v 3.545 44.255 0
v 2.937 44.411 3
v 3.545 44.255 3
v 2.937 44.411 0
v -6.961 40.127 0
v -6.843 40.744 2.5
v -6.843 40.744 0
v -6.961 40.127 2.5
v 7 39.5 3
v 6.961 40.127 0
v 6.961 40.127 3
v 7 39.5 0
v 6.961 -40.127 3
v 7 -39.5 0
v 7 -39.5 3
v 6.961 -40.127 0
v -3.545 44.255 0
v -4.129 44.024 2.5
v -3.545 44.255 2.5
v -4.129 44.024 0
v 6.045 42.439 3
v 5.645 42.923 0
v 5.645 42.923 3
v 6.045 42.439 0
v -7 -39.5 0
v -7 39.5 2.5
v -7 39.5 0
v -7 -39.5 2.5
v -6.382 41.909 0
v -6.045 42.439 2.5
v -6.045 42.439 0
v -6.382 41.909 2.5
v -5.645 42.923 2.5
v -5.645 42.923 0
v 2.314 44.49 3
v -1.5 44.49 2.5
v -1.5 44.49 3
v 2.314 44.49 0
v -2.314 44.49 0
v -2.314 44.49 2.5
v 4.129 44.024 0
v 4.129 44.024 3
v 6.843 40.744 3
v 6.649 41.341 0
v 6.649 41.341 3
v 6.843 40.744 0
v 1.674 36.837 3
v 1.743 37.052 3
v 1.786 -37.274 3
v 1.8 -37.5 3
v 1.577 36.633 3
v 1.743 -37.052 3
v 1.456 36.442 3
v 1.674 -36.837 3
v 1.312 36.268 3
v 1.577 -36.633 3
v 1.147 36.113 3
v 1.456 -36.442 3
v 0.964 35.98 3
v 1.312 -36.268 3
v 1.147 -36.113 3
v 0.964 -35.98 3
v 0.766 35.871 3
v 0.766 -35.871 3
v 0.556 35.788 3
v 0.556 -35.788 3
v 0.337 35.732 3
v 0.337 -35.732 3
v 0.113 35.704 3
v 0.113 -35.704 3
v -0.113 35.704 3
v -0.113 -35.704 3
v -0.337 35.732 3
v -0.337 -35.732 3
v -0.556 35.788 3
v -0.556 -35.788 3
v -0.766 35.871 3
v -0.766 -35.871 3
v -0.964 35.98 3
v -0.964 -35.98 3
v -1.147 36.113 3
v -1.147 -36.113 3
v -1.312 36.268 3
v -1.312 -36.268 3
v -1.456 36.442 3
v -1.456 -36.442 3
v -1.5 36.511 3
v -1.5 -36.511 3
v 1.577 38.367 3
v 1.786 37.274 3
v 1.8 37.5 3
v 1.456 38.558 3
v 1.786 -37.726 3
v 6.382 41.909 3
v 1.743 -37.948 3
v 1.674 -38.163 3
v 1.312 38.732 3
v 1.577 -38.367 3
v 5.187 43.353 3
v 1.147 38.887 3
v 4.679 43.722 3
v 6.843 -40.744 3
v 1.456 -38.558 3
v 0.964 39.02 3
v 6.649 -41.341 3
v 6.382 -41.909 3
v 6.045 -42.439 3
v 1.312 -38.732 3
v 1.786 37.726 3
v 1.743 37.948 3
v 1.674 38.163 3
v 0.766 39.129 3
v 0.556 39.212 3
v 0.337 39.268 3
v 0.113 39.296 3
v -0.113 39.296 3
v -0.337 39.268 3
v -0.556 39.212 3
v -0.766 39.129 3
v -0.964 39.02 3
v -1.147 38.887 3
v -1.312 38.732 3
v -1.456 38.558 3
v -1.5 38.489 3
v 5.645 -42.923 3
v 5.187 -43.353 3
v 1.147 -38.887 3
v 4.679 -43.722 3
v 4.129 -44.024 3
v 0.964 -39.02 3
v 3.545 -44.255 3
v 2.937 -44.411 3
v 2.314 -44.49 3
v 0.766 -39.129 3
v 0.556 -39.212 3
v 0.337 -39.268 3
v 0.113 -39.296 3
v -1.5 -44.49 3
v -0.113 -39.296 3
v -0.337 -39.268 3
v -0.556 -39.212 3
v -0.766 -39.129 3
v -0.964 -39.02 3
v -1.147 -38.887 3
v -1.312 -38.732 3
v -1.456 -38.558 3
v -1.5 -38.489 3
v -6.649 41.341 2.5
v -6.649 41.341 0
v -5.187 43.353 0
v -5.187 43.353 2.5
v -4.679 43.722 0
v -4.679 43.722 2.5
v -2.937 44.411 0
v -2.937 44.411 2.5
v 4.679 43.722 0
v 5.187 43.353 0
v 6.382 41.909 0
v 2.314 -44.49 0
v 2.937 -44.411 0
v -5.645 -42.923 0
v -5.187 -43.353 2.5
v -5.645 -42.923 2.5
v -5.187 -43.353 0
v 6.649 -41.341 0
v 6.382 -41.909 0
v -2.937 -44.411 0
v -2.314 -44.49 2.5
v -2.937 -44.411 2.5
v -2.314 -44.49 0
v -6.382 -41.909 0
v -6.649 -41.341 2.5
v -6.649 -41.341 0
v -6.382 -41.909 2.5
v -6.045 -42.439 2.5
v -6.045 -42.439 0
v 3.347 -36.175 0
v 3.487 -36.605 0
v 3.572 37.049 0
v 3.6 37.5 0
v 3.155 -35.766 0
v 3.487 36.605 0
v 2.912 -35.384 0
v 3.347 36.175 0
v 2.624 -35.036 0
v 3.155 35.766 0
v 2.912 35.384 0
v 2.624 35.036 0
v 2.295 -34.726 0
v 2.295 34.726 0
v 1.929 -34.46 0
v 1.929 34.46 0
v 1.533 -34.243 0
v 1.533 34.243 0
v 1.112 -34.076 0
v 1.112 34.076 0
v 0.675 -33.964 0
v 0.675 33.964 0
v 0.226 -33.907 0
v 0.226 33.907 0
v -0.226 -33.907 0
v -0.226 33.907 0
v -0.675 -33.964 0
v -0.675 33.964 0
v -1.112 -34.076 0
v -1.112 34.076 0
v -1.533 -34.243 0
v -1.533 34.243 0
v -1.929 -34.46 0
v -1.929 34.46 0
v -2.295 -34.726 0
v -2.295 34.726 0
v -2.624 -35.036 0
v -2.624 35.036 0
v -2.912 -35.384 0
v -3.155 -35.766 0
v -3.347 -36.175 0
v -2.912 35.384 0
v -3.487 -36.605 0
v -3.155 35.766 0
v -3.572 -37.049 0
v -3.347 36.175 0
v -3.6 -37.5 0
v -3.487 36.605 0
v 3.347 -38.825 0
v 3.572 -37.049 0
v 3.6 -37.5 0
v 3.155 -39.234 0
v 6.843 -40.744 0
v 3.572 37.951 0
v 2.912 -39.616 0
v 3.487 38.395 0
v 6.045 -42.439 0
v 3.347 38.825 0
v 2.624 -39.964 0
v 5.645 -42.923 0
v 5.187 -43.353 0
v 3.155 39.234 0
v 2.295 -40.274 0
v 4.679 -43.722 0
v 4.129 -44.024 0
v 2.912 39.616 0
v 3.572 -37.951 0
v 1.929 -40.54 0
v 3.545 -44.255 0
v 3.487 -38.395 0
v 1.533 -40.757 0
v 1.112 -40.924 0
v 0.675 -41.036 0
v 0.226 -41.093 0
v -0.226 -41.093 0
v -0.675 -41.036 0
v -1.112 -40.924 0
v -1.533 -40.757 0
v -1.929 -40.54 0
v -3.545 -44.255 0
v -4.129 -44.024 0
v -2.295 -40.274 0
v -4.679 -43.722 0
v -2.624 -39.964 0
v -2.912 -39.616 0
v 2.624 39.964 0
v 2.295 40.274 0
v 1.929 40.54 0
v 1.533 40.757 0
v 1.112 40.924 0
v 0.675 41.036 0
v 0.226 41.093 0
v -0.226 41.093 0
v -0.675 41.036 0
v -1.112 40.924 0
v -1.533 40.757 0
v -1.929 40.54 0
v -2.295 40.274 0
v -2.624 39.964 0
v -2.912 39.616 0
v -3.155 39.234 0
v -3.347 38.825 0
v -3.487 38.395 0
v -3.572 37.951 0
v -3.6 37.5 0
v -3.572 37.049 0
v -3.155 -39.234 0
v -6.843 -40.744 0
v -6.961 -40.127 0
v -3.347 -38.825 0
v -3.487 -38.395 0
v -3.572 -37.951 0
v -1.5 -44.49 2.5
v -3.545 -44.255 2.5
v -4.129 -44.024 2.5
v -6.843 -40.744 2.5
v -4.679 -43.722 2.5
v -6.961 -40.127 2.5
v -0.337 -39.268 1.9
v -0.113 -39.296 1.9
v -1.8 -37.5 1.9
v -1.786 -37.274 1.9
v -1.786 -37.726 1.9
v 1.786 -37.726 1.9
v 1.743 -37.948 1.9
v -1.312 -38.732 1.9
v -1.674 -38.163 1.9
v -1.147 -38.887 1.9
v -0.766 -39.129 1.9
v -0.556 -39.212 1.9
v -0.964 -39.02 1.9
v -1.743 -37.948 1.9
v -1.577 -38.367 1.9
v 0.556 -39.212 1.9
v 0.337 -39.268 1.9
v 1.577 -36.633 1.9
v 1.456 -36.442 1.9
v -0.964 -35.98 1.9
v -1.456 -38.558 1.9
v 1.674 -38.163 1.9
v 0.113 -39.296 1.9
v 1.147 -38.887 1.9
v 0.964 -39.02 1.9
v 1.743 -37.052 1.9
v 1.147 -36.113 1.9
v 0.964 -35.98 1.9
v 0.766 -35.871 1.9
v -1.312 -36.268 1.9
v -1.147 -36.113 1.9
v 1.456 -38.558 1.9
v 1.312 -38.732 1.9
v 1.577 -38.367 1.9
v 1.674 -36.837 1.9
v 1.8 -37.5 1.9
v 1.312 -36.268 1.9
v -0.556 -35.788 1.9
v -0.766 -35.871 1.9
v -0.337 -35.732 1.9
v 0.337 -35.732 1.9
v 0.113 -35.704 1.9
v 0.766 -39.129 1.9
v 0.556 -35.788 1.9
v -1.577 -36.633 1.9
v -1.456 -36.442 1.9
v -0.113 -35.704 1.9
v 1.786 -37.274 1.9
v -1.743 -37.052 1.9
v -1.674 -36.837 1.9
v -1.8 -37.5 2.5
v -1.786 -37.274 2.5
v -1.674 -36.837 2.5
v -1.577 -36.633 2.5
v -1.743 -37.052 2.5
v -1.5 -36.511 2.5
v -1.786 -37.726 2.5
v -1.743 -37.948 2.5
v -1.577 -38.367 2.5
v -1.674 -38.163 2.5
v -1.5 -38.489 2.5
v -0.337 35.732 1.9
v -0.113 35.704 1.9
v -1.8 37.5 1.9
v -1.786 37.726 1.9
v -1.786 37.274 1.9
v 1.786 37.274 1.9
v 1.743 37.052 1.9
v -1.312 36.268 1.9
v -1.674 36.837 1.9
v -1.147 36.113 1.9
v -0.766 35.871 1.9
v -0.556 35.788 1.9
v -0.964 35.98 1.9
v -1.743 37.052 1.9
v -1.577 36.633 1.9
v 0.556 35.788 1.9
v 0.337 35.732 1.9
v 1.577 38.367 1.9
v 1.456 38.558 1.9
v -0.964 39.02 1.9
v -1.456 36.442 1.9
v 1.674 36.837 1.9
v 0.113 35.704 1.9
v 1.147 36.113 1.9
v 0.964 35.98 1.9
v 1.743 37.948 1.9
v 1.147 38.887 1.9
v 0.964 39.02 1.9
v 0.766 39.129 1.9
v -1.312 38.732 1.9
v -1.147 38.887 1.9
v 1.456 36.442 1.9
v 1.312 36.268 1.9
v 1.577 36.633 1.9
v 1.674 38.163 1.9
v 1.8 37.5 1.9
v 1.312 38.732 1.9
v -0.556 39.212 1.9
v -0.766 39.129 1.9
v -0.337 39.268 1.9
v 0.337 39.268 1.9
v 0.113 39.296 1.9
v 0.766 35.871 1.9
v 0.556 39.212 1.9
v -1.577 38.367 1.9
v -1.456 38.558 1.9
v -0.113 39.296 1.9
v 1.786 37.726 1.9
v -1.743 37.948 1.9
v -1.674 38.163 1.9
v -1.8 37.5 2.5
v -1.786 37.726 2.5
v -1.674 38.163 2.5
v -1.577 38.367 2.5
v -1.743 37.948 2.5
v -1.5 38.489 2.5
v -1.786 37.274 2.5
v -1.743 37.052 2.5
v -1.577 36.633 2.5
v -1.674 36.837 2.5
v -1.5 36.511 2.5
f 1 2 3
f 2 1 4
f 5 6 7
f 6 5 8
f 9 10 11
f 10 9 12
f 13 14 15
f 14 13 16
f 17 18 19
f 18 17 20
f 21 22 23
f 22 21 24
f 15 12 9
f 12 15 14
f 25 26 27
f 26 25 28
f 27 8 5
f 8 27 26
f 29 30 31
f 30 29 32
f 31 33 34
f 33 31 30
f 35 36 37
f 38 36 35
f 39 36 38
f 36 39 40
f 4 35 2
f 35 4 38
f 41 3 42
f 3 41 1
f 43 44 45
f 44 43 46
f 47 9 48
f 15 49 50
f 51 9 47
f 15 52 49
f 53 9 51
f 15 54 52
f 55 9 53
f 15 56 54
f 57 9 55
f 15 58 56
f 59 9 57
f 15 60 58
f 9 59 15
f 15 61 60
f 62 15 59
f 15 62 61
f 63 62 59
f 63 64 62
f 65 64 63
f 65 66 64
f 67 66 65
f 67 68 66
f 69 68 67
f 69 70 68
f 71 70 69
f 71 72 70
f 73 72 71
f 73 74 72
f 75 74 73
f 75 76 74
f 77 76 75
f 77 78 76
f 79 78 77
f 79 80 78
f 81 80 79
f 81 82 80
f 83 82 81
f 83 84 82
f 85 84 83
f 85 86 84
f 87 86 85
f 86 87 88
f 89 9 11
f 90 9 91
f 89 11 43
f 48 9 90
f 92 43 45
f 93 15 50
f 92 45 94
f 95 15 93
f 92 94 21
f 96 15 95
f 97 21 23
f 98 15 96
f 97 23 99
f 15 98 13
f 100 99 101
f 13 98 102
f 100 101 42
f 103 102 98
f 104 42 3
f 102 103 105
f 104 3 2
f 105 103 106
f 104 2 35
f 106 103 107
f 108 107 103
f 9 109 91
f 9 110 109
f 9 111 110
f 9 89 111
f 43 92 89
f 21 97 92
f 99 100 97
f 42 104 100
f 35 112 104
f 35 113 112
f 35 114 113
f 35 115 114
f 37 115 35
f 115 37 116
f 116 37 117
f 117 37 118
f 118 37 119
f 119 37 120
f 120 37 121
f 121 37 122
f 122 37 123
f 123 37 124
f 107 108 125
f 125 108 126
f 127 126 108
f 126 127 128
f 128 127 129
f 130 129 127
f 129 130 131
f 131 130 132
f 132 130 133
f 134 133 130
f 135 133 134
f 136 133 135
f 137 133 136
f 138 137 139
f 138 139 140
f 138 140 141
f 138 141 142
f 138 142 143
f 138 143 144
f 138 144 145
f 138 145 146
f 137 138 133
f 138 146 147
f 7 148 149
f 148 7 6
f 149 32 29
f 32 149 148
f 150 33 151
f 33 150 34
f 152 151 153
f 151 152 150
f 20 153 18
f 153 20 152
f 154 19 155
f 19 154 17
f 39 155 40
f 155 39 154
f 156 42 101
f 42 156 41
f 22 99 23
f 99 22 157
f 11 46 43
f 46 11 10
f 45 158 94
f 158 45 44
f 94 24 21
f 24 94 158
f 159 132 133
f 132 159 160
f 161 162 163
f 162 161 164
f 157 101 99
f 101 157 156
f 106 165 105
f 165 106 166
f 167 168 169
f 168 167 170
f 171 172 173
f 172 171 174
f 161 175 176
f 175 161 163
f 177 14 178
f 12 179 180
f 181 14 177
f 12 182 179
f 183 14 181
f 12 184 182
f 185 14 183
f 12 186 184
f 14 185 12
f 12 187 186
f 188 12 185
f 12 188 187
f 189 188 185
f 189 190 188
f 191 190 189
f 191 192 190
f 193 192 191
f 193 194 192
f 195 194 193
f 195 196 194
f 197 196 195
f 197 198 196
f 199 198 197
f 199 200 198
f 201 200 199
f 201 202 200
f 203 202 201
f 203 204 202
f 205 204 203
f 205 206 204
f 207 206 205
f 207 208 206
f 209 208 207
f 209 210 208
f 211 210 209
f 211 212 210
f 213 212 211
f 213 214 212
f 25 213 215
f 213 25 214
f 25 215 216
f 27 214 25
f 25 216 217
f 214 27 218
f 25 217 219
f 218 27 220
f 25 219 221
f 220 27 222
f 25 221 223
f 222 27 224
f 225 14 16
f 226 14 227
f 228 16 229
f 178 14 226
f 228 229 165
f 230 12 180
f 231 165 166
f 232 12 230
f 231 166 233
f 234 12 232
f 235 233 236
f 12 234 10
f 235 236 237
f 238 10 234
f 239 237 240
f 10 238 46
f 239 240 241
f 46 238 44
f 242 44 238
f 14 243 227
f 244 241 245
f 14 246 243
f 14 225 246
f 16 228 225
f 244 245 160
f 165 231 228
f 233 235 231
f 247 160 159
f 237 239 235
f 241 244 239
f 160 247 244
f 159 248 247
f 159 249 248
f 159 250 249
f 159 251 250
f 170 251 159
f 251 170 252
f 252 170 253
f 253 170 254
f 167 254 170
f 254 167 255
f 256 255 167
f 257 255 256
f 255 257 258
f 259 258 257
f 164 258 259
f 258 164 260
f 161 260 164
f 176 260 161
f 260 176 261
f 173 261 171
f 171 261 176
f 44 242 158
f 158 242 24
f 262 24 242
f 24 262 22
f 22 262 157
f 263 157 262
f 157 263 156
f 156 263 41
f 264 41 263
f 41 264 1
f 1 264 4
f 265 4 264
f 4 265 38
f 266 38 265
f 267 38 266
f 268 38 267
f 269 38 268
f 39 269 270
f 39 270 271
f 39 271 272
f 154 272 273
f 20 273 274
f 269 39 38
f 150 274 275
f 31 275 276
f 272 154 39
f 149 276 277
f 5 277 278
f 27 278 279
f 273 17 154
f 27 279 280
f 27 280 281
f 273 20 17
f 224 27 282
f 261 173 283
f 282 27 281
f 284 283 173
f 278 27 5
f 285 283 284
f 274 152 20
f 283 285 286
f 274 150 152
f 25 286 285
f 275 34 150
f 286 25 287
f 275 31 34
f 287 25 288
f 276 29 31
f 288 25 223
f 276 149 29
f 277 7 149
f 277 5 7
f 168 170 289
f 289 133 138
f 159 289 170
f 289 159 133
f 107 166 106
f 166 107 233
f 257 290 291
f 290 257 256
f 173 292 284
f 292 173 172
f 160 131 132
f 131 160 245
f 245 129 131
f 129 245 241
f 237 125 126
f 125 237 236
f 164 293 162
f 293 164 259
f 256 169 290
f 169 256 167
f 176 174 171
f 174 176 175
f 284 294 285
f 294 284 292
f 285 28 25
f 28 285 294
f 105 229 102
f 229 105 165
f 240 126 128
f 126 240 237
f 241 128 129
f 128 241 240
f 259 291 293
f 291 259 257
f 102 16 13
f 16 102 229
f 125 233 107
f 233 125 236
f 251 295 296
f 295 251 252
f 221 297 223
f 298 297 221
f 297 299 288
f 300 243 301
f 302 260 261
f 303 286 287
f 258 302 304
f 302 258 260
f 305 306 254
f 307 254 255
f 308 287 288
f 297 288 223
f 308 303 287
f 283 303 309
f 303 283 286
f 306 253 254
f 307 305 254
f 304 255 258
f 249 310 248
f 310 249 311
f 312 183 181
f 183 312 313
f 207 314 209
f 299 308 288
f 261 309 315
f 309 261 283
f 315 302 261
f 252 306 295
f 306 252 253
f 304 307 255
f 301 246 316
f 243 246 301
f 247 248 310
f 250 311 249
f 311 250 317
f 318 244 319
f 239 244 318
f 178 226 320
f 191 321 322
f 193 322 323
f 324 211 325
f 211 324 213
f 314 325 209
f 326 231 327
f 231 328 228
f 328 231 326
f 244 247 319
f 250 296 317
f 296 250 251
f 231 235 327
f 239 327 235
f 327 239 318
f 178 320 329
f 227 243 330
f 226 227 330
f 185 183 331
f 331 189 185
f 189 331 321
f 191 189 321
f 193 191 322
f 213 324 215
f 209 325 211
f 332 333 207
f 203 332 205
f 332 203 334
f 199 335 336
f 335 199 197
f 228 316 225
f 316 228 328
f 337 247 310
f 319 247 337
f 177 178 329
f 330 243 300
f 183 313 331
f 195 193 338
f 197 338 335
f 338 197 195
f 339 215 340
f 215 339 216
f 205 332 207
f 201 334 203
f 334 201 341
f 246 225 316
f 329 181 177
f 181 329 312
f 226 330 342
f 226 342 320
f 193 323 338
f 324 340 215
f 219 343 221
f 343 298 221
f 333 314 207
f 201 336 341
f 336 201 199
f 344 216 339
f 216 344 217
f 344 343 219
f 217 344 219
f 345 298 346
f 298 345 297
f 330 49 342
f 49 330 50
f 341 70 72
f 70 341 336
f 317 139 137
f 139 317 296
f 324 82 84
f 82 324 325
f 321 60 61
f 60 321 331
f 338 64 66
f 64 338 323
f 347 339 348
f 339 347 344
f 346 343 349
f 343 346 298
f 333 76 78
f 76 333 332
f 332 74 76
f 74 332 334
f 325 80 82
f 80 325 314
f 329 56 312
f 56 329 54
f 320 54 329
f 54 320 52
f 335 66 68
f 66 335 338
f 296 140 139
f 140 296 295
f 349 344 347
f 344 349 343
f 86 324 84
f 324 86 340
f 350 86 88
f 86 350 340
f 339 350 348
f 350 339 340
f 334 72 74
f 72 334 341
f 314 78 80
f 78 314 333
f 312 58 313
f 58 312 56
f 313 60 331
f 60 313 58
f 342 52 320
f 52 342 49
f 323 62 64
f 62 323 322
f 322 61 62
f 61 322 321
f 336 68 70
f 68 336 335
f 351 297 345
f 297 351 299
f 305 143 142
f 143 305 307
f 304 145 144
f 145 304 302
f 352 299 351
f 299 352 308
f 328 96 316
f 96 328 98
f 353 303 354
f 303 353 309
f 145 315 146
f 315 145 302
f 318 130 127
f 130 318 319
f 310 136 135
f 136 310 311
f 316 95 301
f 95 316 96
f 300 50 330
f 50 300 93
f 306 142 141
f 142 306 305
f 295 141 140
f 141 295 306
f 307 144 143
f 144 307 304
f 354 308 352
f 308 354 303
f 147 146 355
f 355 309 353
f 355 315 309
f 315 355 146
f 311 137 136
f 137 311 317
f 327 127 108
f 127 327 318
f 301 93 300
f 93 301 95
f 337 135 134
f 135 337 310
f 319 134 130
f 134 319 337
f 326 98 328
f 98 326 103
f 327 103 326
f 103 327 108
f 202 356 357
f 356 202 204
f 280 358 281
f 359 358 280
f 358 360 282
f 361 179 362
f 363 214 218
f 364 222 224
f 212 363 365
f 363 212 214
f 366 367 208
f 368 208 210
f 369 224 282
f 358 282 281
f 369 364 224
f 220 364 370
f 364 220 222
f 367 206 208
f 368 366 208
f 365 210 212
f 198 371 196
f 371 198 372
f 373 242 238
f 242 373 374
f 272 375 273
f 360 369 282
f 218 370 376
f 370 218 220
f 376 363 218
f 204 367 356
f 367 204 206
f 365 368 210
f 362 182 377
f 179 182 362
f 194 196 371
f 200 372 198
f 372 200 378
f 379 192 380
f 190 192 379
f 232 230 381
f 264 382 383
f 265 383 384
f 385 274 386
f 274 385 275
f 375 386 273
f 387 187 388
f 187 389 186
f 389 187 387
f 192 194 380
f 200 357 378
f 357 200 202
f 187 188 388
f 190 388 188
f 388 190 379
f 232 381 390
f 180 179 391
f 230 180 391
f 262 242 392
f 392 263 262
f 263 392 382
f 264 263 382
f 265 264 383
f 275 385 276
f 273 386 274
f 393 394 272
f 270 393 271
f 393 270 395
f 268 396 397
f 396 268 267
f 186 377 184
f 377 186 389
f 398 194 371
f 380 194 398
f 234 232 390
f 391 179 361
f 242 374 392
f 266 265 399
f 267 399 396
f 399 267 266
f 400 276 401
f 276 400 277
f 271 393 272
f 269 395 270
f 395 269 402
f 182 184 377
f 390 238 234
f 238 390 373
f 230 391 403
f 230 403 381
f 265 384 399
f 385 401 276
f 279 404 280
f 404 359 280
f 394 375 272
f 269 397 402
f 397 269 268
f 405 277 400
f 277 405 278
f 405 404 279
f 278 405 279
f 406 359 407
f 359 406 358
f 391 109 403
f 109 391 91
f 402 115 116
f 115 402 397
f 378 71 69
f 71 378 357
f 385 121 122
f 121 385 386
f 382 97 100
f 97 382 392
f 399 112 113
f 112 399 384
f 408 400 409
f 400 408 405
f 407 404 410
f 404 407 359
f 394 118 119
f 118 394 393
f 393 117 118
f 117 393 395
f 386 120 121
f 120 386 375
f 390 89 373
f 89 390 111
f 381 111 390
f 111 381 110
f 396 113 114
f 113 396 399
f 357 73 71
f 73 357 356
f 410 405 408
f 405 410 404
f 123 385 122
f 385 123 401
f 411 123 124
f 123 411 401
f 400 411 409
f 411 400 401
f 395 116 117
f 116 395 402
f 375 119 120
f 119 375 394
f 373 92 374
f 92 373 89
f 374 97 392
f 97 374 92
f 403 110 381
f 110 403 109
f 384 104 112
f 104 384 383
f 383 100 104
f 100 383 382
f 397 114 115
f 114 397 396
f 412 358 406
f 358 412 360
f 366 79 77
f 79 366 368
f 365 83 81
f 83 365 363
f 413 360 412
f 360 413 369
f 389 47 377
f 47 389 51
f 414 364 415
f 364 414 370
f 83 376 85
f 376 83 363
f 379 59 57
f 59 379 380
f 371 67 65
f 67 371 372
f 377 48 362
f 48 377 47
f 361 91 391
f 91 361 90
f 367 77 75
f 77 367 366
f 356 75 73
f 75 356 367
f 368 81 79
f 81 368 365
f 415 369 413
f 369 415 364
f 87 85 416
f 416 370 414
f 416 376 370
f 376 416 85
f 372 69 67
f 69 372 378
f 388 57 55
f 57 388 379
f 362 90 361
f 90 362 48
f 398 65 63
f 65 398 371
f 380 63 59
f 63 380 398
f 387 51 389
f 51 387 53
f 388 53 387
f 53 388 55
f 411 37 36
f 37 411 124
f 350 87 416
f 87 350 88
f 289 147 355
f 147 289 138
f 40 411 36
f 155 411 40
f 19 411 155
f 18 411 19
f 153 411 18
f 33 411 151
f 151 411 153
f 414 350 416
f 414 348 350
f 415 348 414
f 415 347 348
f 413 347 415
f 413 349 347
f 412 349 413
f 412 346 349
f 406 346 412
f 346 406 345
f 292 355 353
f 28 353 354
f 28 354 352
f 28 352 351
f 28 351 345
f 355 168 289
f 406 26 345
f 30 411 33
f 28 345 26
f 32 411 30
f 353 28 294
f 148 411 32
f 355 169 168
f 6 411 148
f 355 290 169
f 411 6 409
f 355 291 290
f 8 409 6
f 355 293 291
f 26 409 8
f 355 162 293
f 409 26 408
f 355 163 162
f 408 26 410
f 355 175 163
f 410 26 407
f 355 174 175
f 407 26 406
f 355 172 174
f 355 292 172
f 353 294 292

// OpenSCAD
$fn = 50;


difference() {
	union() {
		hull() {
			translate(v = [-2.0000000000, 39.5000000000, 0]) {
				cylinder(h = 3, r = 5);
			}
			translate(v = [2.0000000000, 39.5000000000, 0]) {
				cylinder(h = 3, r = 5);
			}
			translate(v = [-2.0000000000, -39.5000000000, 0]) {
				cylinder(h = 3, r = 5);
			}
			translate(v = [2.0000000000, -39.5000000000, 0]) {
				cylinder(h = 3, r = 5);
			}
		}
		hull() {
			translate(v = [-2.0000000000, 39.5000000000, 0]) {
				cylinder(h = 3, r = 5);
			}
			translate(v = [2.0000000000, 39.5000000000, 0]) {
				cylinder(h = 3, r = 5);
			}
			translate(v = [-2.0000000000, -39.5000000000, 0]) {
				cylinder(h = 3, r = 5);
			}
			translate(v = [2.0000000000, -39.5000000000, 0]) {
				cylinder(h = 3, r = 5);
			}
		}
	}
	union() {
		translate(v = [0, -37.5000000000, 0]) {
			rotate(a = [0, 180, 0]) {
				difference() {
					union() {
						translate(v = [0, 0, -17.0000000000]) {
							rotate(a = [0, 0, 0]) {
								difference() {
									union() {
										#translate(v = [-1.7500000000, -3.2500000000, -0.3000000000]) {
											cube(size = [3.5000000000, 6.5000000000, 0.3000000000]);
										}
										#translate(v = [-1.7500000000, -1.7500000000, -0.6000000000]) {
											cube(size = [3.5000000000, 3.5000000000, 0.3000000000]);
										}
										#translate(v = [-1.7500000000, -3.2500000000, 2.5000000000]) {
											cube(size = [3.5000000000, 6.5000000000, 0.3000000000]);
										}
										#translate(v = [-1.7500000000, -1.7500000000, 2.8000000000]) {
											cube(size = [3.5000000000, 3.5000000000, 0.3000000000]);
										}
										#linear_extrude(height = 2.5000000000) {
											polygon(points = [[3.4620000000, 0.0000000000], [1.7310000000, 2.9981799479], [-1.7310000000, 2.9981799479], [-3.4620000000, 0.0000000000], [-1.7310000000, -2.9981799479], [1.7310000000, -2.9981799479]]);
										}
										#translate(v = [-1.7500000000, -3.2500000000, -0.3000000000]) {
											cube(size = [3.5000000000, 6.5000000000, 0.3000000000]);
										}
										#translate(v = [-1.7500000000, -1.7500000000, -0.6000000000]) {
											cube(size = [3.5000000000, 3.5000000000, 0.3000000000]);
										}
										#translate(v = [-1.7500000000, -3.2500000000, 2.5000000000]) {
											cube(size = [3.5000000000, 6.5000000000, 0.3000000000]);
										}
										#translate(v = [-1.7500000000, -1.7500000000, 2.8000000000]) {
											cube(size = [3.5000000000, 3.5000000000, 0.3000000000]);
										}
										#translate(v = [-1.7500000000, -3.2500000000, -0.3000000000]) {
											cube(size = [3.5000000000, 6.5000000000, 0.3000000000]);
										}
										#translate(v = [-1.7500000000, -1.7500000000, -0.6000000000]) {
											cube(size = [3.5000000000, 3.5000000000, 0.3000000000]);
										}
										#translate(v = [-1.7500000000, -3.2500000000, 2.5000000000]) {
											cube(size = [3.5000000000, 6.5000000000, 0.3000000000]);
										}
										#translate(v = [-1.7500000000, -1.7500000000, 2.8000000000]) {
											cube(size = [3.5000000000, 3.5000000000, 0.3000000000]);
										}
									}
									union();
								}
							}
						}
						translate(v = [0, 0, -17.0000000000]) {
							rotate(a = [0, 0, 0]) {
								difference() {
									union() {
										#translate(v = [-1.7500000000, -3.2500000000, -0.3000000000]) {
											cube(size = [3.5000000000, 6.5000000000, 0.3000000000]);
										}
										#translate(v = [-1.7500000000, -1.7500000000, -0.6000000000]) {
											cube(size = [3.5000000000, 3.5000000000, 0.3000000000]);
										}
										#translate(v = [-1.7500000000, -3.2500000000, 2.5000000000]) {
											cube(size = [3.5000000000, 6.5000000000, 0.3000000000]);
										}
										#translate(v = [-1.7500000000, -1.7500000000, 2.8000000000]) {
											cube(size = [3.5000000000, 3.5000000000, 0.3000000000]);
										}
										#linear_extrude(height = 2.5000000000) {
											polygon(points = [[3.4620000000, 0.0000000000], [1.7310000000, 2.9981799479], [-1.7310000000, 2.9981799479], [-3.4620000000, 0.0000000000], [-1.7310000000, -2.9981799479], [1.7310000000, -2.9981799479]]);
										}
										#translate(v = [-1.7500000000, -3.2500000000, -0.3000000000]) {
											cube(size = [3.5000000000, 6.5000000000, 0.3000000000]);
										}
										#translate(v = [-1.7500000000, -1.7500000000, -0.6000000000]) {
											cube(size = [3.5000000000, 3.5000000000, 0.3000000000]);
										}
										#translate(v = [-1.7500000000, -3.2500000000, 2.5000000000]) {
											cube(size = [3.5000000000, 6.5000000000, 0.3000000000]);
										}
										#translate(v = [-1.7500000000, -1.7500000000, 2.8000000000]) {
											cube(size = [3.5000000000, 3.5000000000, 0.3000000000]);
										}
										#translate(v = [-1.7500000000, -3.2500000000, -0.3000000000]) {
											cube(size = [3.5000000000, 6.5000000000, 0.3000000000]);
										}
										#translate(v = [-1.7500000000, -1.7500000000, -0.6000000000]) {
											cube(size = [3.5000000000, 3.5000000000, 0.3000000000]);
										}
										#translate(v = [-1.7500000000, -3.2500000000, 2.5000000000]) {
											cube(size = [3.5000000000, 6.5000000000, 0.3000000000]);
										}
										#translate(v = [-1.7500000000, -1.7500000000, 2.8000000000]) {
											cube(size = [3.5000000000, 3.5000000000, 0.3000000000]);
										}
									}
									union();
								}
							}
						}
						translate(v = [0, 0, -17.0000000000]) {
							rotate(a = [0, 0, 0]) {
								difference() {
									union() {
										#translate(v = [-1.7500000000, -3.2500000000, -0.3000000000]) {
											cube(size = [3.5000000000, 6.5000000000, 0.3000000000]);
										}
										#translate(v = [-1.7500000000, -1.7500000000, -0.6000000000]) {
											cube(size = [3.5000000000, 3.5000000000, 0.3000000000]);
										}
										#translate(v = [-1.7500000000, -3.2500000000, 2.5000000000]) {
											cube(size = [3.5000000000, 6.5000000000, 0.3000000000]);
										}
										#translate(v = [-1.7500000000, -1.7500000000, 2.8000000000]) {
											cube(size = [3.5000000000, 3.5000000000, 0.3000000000]);
										}
										#linear_extrude(height = 2.5000000000) {
											polygon(points = [[3.4620000000, 0.0000000000], [1.7310000000, 2.9981799479], [-1.7310000000, 2.9981799479], [-3.4620000000, 0.0000000000], [-1.7310000000, -2.9981799479], [1.7310000000, -2.9981799479]]);
										}
										#translate(v = [-1.7500000000, -3.2500000000, -0.3000000000]) {
											cube(size = [3.5000000000, 6.5000000000, 0.3000000000]);
										}
										#translate(v = [-1.7500000000, -1.7500000000, -0.6000000000]) {
											cube(size = [3.5000000000, 3.5000000000, 0.3000000000]);
										}
										#translate(v = [-1.7500000000, -3.2500000000, 2.5000000000]) {
											cube(size = [3.5000000000, 6.5000000000, 0.3000000000]);
										}
										#translate(v = [-1.7500000000, -1.7500000000, 2.8000000000]) {
											cube(size = [3.5000000000, 3.5000000000, 0.3000000000]);
										}
										#translate(v = [-1.7500000000, -3.2500000000, -0.3000000000]) {
											cube(size = [3.5000000000, 6.5000000000, 0.3000000000]);
										}
										#translate(v = [-1.7500000000, -1.7500000000, -0.6000000000]) {
											cube(size = [3.5000000000, 3.5000000000, 0.3000000000]);
										}
										#translate(v = [-1.7500000000, -3.2500000000, 2.5000000000]) {
											cube(size = [3.5000000000, 6.5000000000, 0.3000000000]);
										}
										#translate(v = [-1.7500000000, -1.7500000000, 2.8000000000]) {
											cube(size = [3.5000000000, 3.5000000000, 0.3000000000]);
										}
									}
									union();
								}
							}
						}
						#translate(v = [0, 0, -17.0000000000]) {
							cylinder(h = 17, r = 1.5000000000);
						}
						#translate(v = [0, 0, -1.9000000000]) {
							cylinder(h = 1.9000000000, r1 = 1.8000000000, r2 = 3.6000000000);
						}
						#translate(v = [0, 0, -17.0000000000]) {
							cylinder(h = 17, r = 1.8000000000);
						}
						#translate(v = [0, 0, -17.0000000000]) {
							cylinder(h = 17, r = 1.5000000000);
						}
					}
					union();
				}
			}
		}
		translate(v = [0, 37.5000000000, 0]) {
			rotate(a = [0, 180, 0]) {
				difference() {
					union() {
						translate(v = [0, 0, -17.0000000000]) {
							rotate(a = [0, 0, 0]) {
								difference() {
									union() {
										#translate(v = [-1.7500000000, -3.2500000000, -0.3000000000]) {
											cube(size = [3.5000000000, 6.5000000000, 0.3000000000]);
										}
										#translate(v = [-1.7500000000, -1.7500000000, -0.6000000000]) {
											cube(size = [3.5000000000, 3.5000000000, 0.3000000000]);
										}
										#translate(v = [-1.7500000000, -3.2500000000, 2.5000000000]) {
											cube(size = [3.5000000000, 6.5000000000, 0.3000000000]);
										}
										#translate(v = [-1.7500000000, -1.7500000000, 2.8000000000]) {
											cube(size = [3.5000000000, 3.5000000000, 0.3000000000]);
										}
										#linear_extrude(height = 2.5000000000) {
											polygon(points = [[3.4620000000, 0.0000000000], [1.7310000000, 2.9981799479], [-1.7310000000, 2.9981799479], [-3.4620000000, 0.0000000000], [-1.7310000000, -2.9981799479], [1.7310000000, -2.9981799479]]);
										}
										#translate(v = [-1.7500000000, -3.2500000000, -0.3000000000]) {
											cube(size = [3.5000000000, 6.5000000000, 0.3000000000]);
										}
										#translate(v = [-1.7500000000, -1.7500000000, -0.6000000000]) {
											cube(size = [3.5000000000, 3.5000000000, 0.3000000000]);
										}
										#translate(v = [-1.7500000000, -3.2500000000, 2.5000000000]) {
											cube(size = [3.5000000000, 6.5000000000, 0.3000000000]);
										}
										#translate(v = [-1.7500000000, -1.7500000000, 2.8000000000]) {
											cube(size = [3.5000000000, 3.5000000000, 0.3000000000]);
										}
										#translate(v = [-1.7500000000, -3.2500000000, -0.3000000000]) {
											cube(size = [3.5000000000, 6.5000000000, 0.3000000000]);
										}
										#translate(v = [-1.7500000000, -1.7500000000, -0.6000000000]) {
											cube(size = [3.5000000000, 3.5000000000, 0.3000000000]);
										}
										#translate(v = [-1.7500000000, -3.2500000000, 2.5000000000]) {
											cube(size = [3.5000000000, 6.5000000000, 0.3000000000]);
										}
										#translate(v = [-1.7500000000, -1.7500000000, 2.8000000000]) {
											cube(size = [3.5000000000, 3.5000000000, 0.3000000000]);
										}
									}
									union();
								}
							}
						}
						translate(v = [0, 0, -17.0000000000]) {
							rotate(a = [0, 0, 0]) {
								difference() {
									union() {
										#translate(v = [-1.7500000000, -3.2500000000, -0.3000000000]) {
											cube(size = [3.5000000000, 6.5000000000, 0.3000000000]);
										}
										#translate(v = [-1.7500000000, -1.7500000000, -0.6000000000]) {
											cube(size = [3.5000000000, 3.5000000000, 0.3000000000]);
										}
										#translate(v = [-1.7500000000, -3.2500000000, 2.5000000000]) {
											cube(size = [3.5000000000, 6.5000000000, 0.3000000000]);
										}
										#translate(v = [-1.7500000000, -1.7500000000, 2.8000000000]) {
											cube(size = [3.5000000000, 3.5000000000, 0.3000000000]);
										}
										#linear_extrude(height = 2.5000000000) {
											polygon(points = [[3.4620000000, 0.0000000000], [1.7310000000, 2.9981799479], [-1.7310000000, 2.9981799479], [-3.4620000000, 0.0000000000], [-1.7310000000, -2.9981799479], [1.7310000000, -2.9981799479]]);
										}
										#translate(v = [-1.7500000000, -3.2500000000, -0.3000000000]) {
											cube(size = [3.5000000000, 6.5000000000, 0.3000000000]);
										}
										#translate(v = [-1.7500000000, -1.7500000000, -0.6000000000]) {
											cube(size = [3.5000000000, 3.5000000000, 0.3000000000]);
										}
										#translate(v = [-1.7500000000, -3.2500000000, 2.5000000000]) {
											cube(size = [3.5000000000, 6.5000000000, 0.3000000000]);
										}
										#translate(v = [-1.7500000000, -1.7500000000, 2.8000000000]) {
											cube(size = [3.5000000000, 3.5000000000, 0.3000000000]);
										}
										#translate(v = [-1.7500000000, -3.2500000000, -0.3000000000]) {
											cube(size = [3.5000000000, 6.5000000000, 0.3000000000]);
										}
										#translate(v = [-1.7500000000, -1.7500000000, -0.6000000000]) {
											cube(size = [3.5000000000, 3.5000000000, 0.3000000000]);
										}
										#translate(v = [-1.7500000000, -3.2500000000, 2.5000000000]) {
											cube(size = [3.5000000000, 6.5000000000, 0.3000000000]);
										}
										#translate(v = [-1.7500000000, -1.7500000000, 2.8000000000]) {
											cube(size = [3.5000000000, 3.5000000000, 0.3000000000]);
										}
									}
									union();
								}
							}
						}
						translate(v = [0, 0, -17.0000000000]) {
							rotate(a = [0, 0, 0]) {
								difference() {
									union() {
										#translate(v = [-1.7500000000, -3.2500000000, -0.3000000000]) {
											cube(size = [3.5000000000, 6.5000000000, 0.3000000000]);
										}
										#translate(v = [-1.7500000000, -1.7500000000, -0.6000000000]) {
											cube(size = [3.5000000000, 3.5000000000, 0.3000000000]);
										}
										#translate(v = [-1.7500000000, -3.2500000000, 2.5000000000]) {
											cube(size = [3.5000000000, 6.5000000000, 0.3000000000]);
										}
										#translate(v = [-1.7500000000, -1.7500000000, 2.8000000000]) {
											cube(size = [3.5000000000, 3.5000000000, 0.3000000000]);
										}
										#linear_extrude(height = 2.5000000000) {
											polygon(points = [[3.4620000000, 0.0000000000], [1.7310000000, 2.9981799479], [-1.7310000000, 2.9981799479], [-3.4620000000, 0.0000000000], [-1.7310000000, -2.9981799479], [1.7310000000, -2.9981799479]]);
										}
										#translate(v = [-1.7500000000, -3.2500000000, -0.3000000000]) {
											cube(size = [3.5000000000, 6.5000000000, 0.3000000000]);
										}
										#translate(v = [-1.7500000000, -1.7500000000, -0.6000000000]) {
											cube(size = [3.5000000000, 3.5000000000, 0.3000000000]);
										}
										#translate(v = [-1.7500000000, -3.2500000000, 2.5000000000]) {
											cube(size = [3.5000000000, 6.5000000000, 0.3000000000]);
										}
										#translate(v = [-1.7500000000, -1.7500000000, 2.8000000000]) {
											cube(size = [3.5000000000, 3.5000000000, 0.3000000000]);
										}
										#translate(v = [-1.7500000000, -3.2500000000, -0.3000000000]) {
											cube(size = [3.5000000000, 6.5000000000, 0.3000000000]);
										}
										#translate(v = [-1.7500000000, -1.7500000000, -0.6000000000]) {
											cube(size = [3.5000000000, 3.5000000000, 0.3000000000]);
										}
										#translate(v = [-1.7500000000, -3.2500000000, 2.5000000000]) {
											cube(size = [3.5000000000, 6.5000000000, 0.3000000000]);
										}
										#translate(v = [-1.7500000000, -1.7500000000, 2.8000000000]) {
											cube(size = [3.5000000000, 3.5000000000, 0.3000000000]);
										}
									}
									union();
								}
							}
						}
						#translate(v = [0, 0, -17.0000000000]) {
							cylinder(h = 17, r = 1.5000000000);
						}
						#translate(v = [0, 0, -1.9000000000]) {
							cylinder(h = 1.9000000000, r1 = 1.8000000000, r2 = 3.6000000000);
						}
						#translate(v = [0, 0, -17.0000000000]) {
							cylinder(h = 17, r = 1.8000000000);
						}
						#translate(v = [0, 0, -17.0000000000]) {
							cylinder(h = 17, r = 1.5000000000);
						}
					}
					union();
				}
			}
		}
		#translate(v = [-153.9000000000, -50.8000000000, 2.5000000000]) {
			cube(size = [152.4000000000, 101.6000000000, 0.5000000000]);
		}
	}
}
